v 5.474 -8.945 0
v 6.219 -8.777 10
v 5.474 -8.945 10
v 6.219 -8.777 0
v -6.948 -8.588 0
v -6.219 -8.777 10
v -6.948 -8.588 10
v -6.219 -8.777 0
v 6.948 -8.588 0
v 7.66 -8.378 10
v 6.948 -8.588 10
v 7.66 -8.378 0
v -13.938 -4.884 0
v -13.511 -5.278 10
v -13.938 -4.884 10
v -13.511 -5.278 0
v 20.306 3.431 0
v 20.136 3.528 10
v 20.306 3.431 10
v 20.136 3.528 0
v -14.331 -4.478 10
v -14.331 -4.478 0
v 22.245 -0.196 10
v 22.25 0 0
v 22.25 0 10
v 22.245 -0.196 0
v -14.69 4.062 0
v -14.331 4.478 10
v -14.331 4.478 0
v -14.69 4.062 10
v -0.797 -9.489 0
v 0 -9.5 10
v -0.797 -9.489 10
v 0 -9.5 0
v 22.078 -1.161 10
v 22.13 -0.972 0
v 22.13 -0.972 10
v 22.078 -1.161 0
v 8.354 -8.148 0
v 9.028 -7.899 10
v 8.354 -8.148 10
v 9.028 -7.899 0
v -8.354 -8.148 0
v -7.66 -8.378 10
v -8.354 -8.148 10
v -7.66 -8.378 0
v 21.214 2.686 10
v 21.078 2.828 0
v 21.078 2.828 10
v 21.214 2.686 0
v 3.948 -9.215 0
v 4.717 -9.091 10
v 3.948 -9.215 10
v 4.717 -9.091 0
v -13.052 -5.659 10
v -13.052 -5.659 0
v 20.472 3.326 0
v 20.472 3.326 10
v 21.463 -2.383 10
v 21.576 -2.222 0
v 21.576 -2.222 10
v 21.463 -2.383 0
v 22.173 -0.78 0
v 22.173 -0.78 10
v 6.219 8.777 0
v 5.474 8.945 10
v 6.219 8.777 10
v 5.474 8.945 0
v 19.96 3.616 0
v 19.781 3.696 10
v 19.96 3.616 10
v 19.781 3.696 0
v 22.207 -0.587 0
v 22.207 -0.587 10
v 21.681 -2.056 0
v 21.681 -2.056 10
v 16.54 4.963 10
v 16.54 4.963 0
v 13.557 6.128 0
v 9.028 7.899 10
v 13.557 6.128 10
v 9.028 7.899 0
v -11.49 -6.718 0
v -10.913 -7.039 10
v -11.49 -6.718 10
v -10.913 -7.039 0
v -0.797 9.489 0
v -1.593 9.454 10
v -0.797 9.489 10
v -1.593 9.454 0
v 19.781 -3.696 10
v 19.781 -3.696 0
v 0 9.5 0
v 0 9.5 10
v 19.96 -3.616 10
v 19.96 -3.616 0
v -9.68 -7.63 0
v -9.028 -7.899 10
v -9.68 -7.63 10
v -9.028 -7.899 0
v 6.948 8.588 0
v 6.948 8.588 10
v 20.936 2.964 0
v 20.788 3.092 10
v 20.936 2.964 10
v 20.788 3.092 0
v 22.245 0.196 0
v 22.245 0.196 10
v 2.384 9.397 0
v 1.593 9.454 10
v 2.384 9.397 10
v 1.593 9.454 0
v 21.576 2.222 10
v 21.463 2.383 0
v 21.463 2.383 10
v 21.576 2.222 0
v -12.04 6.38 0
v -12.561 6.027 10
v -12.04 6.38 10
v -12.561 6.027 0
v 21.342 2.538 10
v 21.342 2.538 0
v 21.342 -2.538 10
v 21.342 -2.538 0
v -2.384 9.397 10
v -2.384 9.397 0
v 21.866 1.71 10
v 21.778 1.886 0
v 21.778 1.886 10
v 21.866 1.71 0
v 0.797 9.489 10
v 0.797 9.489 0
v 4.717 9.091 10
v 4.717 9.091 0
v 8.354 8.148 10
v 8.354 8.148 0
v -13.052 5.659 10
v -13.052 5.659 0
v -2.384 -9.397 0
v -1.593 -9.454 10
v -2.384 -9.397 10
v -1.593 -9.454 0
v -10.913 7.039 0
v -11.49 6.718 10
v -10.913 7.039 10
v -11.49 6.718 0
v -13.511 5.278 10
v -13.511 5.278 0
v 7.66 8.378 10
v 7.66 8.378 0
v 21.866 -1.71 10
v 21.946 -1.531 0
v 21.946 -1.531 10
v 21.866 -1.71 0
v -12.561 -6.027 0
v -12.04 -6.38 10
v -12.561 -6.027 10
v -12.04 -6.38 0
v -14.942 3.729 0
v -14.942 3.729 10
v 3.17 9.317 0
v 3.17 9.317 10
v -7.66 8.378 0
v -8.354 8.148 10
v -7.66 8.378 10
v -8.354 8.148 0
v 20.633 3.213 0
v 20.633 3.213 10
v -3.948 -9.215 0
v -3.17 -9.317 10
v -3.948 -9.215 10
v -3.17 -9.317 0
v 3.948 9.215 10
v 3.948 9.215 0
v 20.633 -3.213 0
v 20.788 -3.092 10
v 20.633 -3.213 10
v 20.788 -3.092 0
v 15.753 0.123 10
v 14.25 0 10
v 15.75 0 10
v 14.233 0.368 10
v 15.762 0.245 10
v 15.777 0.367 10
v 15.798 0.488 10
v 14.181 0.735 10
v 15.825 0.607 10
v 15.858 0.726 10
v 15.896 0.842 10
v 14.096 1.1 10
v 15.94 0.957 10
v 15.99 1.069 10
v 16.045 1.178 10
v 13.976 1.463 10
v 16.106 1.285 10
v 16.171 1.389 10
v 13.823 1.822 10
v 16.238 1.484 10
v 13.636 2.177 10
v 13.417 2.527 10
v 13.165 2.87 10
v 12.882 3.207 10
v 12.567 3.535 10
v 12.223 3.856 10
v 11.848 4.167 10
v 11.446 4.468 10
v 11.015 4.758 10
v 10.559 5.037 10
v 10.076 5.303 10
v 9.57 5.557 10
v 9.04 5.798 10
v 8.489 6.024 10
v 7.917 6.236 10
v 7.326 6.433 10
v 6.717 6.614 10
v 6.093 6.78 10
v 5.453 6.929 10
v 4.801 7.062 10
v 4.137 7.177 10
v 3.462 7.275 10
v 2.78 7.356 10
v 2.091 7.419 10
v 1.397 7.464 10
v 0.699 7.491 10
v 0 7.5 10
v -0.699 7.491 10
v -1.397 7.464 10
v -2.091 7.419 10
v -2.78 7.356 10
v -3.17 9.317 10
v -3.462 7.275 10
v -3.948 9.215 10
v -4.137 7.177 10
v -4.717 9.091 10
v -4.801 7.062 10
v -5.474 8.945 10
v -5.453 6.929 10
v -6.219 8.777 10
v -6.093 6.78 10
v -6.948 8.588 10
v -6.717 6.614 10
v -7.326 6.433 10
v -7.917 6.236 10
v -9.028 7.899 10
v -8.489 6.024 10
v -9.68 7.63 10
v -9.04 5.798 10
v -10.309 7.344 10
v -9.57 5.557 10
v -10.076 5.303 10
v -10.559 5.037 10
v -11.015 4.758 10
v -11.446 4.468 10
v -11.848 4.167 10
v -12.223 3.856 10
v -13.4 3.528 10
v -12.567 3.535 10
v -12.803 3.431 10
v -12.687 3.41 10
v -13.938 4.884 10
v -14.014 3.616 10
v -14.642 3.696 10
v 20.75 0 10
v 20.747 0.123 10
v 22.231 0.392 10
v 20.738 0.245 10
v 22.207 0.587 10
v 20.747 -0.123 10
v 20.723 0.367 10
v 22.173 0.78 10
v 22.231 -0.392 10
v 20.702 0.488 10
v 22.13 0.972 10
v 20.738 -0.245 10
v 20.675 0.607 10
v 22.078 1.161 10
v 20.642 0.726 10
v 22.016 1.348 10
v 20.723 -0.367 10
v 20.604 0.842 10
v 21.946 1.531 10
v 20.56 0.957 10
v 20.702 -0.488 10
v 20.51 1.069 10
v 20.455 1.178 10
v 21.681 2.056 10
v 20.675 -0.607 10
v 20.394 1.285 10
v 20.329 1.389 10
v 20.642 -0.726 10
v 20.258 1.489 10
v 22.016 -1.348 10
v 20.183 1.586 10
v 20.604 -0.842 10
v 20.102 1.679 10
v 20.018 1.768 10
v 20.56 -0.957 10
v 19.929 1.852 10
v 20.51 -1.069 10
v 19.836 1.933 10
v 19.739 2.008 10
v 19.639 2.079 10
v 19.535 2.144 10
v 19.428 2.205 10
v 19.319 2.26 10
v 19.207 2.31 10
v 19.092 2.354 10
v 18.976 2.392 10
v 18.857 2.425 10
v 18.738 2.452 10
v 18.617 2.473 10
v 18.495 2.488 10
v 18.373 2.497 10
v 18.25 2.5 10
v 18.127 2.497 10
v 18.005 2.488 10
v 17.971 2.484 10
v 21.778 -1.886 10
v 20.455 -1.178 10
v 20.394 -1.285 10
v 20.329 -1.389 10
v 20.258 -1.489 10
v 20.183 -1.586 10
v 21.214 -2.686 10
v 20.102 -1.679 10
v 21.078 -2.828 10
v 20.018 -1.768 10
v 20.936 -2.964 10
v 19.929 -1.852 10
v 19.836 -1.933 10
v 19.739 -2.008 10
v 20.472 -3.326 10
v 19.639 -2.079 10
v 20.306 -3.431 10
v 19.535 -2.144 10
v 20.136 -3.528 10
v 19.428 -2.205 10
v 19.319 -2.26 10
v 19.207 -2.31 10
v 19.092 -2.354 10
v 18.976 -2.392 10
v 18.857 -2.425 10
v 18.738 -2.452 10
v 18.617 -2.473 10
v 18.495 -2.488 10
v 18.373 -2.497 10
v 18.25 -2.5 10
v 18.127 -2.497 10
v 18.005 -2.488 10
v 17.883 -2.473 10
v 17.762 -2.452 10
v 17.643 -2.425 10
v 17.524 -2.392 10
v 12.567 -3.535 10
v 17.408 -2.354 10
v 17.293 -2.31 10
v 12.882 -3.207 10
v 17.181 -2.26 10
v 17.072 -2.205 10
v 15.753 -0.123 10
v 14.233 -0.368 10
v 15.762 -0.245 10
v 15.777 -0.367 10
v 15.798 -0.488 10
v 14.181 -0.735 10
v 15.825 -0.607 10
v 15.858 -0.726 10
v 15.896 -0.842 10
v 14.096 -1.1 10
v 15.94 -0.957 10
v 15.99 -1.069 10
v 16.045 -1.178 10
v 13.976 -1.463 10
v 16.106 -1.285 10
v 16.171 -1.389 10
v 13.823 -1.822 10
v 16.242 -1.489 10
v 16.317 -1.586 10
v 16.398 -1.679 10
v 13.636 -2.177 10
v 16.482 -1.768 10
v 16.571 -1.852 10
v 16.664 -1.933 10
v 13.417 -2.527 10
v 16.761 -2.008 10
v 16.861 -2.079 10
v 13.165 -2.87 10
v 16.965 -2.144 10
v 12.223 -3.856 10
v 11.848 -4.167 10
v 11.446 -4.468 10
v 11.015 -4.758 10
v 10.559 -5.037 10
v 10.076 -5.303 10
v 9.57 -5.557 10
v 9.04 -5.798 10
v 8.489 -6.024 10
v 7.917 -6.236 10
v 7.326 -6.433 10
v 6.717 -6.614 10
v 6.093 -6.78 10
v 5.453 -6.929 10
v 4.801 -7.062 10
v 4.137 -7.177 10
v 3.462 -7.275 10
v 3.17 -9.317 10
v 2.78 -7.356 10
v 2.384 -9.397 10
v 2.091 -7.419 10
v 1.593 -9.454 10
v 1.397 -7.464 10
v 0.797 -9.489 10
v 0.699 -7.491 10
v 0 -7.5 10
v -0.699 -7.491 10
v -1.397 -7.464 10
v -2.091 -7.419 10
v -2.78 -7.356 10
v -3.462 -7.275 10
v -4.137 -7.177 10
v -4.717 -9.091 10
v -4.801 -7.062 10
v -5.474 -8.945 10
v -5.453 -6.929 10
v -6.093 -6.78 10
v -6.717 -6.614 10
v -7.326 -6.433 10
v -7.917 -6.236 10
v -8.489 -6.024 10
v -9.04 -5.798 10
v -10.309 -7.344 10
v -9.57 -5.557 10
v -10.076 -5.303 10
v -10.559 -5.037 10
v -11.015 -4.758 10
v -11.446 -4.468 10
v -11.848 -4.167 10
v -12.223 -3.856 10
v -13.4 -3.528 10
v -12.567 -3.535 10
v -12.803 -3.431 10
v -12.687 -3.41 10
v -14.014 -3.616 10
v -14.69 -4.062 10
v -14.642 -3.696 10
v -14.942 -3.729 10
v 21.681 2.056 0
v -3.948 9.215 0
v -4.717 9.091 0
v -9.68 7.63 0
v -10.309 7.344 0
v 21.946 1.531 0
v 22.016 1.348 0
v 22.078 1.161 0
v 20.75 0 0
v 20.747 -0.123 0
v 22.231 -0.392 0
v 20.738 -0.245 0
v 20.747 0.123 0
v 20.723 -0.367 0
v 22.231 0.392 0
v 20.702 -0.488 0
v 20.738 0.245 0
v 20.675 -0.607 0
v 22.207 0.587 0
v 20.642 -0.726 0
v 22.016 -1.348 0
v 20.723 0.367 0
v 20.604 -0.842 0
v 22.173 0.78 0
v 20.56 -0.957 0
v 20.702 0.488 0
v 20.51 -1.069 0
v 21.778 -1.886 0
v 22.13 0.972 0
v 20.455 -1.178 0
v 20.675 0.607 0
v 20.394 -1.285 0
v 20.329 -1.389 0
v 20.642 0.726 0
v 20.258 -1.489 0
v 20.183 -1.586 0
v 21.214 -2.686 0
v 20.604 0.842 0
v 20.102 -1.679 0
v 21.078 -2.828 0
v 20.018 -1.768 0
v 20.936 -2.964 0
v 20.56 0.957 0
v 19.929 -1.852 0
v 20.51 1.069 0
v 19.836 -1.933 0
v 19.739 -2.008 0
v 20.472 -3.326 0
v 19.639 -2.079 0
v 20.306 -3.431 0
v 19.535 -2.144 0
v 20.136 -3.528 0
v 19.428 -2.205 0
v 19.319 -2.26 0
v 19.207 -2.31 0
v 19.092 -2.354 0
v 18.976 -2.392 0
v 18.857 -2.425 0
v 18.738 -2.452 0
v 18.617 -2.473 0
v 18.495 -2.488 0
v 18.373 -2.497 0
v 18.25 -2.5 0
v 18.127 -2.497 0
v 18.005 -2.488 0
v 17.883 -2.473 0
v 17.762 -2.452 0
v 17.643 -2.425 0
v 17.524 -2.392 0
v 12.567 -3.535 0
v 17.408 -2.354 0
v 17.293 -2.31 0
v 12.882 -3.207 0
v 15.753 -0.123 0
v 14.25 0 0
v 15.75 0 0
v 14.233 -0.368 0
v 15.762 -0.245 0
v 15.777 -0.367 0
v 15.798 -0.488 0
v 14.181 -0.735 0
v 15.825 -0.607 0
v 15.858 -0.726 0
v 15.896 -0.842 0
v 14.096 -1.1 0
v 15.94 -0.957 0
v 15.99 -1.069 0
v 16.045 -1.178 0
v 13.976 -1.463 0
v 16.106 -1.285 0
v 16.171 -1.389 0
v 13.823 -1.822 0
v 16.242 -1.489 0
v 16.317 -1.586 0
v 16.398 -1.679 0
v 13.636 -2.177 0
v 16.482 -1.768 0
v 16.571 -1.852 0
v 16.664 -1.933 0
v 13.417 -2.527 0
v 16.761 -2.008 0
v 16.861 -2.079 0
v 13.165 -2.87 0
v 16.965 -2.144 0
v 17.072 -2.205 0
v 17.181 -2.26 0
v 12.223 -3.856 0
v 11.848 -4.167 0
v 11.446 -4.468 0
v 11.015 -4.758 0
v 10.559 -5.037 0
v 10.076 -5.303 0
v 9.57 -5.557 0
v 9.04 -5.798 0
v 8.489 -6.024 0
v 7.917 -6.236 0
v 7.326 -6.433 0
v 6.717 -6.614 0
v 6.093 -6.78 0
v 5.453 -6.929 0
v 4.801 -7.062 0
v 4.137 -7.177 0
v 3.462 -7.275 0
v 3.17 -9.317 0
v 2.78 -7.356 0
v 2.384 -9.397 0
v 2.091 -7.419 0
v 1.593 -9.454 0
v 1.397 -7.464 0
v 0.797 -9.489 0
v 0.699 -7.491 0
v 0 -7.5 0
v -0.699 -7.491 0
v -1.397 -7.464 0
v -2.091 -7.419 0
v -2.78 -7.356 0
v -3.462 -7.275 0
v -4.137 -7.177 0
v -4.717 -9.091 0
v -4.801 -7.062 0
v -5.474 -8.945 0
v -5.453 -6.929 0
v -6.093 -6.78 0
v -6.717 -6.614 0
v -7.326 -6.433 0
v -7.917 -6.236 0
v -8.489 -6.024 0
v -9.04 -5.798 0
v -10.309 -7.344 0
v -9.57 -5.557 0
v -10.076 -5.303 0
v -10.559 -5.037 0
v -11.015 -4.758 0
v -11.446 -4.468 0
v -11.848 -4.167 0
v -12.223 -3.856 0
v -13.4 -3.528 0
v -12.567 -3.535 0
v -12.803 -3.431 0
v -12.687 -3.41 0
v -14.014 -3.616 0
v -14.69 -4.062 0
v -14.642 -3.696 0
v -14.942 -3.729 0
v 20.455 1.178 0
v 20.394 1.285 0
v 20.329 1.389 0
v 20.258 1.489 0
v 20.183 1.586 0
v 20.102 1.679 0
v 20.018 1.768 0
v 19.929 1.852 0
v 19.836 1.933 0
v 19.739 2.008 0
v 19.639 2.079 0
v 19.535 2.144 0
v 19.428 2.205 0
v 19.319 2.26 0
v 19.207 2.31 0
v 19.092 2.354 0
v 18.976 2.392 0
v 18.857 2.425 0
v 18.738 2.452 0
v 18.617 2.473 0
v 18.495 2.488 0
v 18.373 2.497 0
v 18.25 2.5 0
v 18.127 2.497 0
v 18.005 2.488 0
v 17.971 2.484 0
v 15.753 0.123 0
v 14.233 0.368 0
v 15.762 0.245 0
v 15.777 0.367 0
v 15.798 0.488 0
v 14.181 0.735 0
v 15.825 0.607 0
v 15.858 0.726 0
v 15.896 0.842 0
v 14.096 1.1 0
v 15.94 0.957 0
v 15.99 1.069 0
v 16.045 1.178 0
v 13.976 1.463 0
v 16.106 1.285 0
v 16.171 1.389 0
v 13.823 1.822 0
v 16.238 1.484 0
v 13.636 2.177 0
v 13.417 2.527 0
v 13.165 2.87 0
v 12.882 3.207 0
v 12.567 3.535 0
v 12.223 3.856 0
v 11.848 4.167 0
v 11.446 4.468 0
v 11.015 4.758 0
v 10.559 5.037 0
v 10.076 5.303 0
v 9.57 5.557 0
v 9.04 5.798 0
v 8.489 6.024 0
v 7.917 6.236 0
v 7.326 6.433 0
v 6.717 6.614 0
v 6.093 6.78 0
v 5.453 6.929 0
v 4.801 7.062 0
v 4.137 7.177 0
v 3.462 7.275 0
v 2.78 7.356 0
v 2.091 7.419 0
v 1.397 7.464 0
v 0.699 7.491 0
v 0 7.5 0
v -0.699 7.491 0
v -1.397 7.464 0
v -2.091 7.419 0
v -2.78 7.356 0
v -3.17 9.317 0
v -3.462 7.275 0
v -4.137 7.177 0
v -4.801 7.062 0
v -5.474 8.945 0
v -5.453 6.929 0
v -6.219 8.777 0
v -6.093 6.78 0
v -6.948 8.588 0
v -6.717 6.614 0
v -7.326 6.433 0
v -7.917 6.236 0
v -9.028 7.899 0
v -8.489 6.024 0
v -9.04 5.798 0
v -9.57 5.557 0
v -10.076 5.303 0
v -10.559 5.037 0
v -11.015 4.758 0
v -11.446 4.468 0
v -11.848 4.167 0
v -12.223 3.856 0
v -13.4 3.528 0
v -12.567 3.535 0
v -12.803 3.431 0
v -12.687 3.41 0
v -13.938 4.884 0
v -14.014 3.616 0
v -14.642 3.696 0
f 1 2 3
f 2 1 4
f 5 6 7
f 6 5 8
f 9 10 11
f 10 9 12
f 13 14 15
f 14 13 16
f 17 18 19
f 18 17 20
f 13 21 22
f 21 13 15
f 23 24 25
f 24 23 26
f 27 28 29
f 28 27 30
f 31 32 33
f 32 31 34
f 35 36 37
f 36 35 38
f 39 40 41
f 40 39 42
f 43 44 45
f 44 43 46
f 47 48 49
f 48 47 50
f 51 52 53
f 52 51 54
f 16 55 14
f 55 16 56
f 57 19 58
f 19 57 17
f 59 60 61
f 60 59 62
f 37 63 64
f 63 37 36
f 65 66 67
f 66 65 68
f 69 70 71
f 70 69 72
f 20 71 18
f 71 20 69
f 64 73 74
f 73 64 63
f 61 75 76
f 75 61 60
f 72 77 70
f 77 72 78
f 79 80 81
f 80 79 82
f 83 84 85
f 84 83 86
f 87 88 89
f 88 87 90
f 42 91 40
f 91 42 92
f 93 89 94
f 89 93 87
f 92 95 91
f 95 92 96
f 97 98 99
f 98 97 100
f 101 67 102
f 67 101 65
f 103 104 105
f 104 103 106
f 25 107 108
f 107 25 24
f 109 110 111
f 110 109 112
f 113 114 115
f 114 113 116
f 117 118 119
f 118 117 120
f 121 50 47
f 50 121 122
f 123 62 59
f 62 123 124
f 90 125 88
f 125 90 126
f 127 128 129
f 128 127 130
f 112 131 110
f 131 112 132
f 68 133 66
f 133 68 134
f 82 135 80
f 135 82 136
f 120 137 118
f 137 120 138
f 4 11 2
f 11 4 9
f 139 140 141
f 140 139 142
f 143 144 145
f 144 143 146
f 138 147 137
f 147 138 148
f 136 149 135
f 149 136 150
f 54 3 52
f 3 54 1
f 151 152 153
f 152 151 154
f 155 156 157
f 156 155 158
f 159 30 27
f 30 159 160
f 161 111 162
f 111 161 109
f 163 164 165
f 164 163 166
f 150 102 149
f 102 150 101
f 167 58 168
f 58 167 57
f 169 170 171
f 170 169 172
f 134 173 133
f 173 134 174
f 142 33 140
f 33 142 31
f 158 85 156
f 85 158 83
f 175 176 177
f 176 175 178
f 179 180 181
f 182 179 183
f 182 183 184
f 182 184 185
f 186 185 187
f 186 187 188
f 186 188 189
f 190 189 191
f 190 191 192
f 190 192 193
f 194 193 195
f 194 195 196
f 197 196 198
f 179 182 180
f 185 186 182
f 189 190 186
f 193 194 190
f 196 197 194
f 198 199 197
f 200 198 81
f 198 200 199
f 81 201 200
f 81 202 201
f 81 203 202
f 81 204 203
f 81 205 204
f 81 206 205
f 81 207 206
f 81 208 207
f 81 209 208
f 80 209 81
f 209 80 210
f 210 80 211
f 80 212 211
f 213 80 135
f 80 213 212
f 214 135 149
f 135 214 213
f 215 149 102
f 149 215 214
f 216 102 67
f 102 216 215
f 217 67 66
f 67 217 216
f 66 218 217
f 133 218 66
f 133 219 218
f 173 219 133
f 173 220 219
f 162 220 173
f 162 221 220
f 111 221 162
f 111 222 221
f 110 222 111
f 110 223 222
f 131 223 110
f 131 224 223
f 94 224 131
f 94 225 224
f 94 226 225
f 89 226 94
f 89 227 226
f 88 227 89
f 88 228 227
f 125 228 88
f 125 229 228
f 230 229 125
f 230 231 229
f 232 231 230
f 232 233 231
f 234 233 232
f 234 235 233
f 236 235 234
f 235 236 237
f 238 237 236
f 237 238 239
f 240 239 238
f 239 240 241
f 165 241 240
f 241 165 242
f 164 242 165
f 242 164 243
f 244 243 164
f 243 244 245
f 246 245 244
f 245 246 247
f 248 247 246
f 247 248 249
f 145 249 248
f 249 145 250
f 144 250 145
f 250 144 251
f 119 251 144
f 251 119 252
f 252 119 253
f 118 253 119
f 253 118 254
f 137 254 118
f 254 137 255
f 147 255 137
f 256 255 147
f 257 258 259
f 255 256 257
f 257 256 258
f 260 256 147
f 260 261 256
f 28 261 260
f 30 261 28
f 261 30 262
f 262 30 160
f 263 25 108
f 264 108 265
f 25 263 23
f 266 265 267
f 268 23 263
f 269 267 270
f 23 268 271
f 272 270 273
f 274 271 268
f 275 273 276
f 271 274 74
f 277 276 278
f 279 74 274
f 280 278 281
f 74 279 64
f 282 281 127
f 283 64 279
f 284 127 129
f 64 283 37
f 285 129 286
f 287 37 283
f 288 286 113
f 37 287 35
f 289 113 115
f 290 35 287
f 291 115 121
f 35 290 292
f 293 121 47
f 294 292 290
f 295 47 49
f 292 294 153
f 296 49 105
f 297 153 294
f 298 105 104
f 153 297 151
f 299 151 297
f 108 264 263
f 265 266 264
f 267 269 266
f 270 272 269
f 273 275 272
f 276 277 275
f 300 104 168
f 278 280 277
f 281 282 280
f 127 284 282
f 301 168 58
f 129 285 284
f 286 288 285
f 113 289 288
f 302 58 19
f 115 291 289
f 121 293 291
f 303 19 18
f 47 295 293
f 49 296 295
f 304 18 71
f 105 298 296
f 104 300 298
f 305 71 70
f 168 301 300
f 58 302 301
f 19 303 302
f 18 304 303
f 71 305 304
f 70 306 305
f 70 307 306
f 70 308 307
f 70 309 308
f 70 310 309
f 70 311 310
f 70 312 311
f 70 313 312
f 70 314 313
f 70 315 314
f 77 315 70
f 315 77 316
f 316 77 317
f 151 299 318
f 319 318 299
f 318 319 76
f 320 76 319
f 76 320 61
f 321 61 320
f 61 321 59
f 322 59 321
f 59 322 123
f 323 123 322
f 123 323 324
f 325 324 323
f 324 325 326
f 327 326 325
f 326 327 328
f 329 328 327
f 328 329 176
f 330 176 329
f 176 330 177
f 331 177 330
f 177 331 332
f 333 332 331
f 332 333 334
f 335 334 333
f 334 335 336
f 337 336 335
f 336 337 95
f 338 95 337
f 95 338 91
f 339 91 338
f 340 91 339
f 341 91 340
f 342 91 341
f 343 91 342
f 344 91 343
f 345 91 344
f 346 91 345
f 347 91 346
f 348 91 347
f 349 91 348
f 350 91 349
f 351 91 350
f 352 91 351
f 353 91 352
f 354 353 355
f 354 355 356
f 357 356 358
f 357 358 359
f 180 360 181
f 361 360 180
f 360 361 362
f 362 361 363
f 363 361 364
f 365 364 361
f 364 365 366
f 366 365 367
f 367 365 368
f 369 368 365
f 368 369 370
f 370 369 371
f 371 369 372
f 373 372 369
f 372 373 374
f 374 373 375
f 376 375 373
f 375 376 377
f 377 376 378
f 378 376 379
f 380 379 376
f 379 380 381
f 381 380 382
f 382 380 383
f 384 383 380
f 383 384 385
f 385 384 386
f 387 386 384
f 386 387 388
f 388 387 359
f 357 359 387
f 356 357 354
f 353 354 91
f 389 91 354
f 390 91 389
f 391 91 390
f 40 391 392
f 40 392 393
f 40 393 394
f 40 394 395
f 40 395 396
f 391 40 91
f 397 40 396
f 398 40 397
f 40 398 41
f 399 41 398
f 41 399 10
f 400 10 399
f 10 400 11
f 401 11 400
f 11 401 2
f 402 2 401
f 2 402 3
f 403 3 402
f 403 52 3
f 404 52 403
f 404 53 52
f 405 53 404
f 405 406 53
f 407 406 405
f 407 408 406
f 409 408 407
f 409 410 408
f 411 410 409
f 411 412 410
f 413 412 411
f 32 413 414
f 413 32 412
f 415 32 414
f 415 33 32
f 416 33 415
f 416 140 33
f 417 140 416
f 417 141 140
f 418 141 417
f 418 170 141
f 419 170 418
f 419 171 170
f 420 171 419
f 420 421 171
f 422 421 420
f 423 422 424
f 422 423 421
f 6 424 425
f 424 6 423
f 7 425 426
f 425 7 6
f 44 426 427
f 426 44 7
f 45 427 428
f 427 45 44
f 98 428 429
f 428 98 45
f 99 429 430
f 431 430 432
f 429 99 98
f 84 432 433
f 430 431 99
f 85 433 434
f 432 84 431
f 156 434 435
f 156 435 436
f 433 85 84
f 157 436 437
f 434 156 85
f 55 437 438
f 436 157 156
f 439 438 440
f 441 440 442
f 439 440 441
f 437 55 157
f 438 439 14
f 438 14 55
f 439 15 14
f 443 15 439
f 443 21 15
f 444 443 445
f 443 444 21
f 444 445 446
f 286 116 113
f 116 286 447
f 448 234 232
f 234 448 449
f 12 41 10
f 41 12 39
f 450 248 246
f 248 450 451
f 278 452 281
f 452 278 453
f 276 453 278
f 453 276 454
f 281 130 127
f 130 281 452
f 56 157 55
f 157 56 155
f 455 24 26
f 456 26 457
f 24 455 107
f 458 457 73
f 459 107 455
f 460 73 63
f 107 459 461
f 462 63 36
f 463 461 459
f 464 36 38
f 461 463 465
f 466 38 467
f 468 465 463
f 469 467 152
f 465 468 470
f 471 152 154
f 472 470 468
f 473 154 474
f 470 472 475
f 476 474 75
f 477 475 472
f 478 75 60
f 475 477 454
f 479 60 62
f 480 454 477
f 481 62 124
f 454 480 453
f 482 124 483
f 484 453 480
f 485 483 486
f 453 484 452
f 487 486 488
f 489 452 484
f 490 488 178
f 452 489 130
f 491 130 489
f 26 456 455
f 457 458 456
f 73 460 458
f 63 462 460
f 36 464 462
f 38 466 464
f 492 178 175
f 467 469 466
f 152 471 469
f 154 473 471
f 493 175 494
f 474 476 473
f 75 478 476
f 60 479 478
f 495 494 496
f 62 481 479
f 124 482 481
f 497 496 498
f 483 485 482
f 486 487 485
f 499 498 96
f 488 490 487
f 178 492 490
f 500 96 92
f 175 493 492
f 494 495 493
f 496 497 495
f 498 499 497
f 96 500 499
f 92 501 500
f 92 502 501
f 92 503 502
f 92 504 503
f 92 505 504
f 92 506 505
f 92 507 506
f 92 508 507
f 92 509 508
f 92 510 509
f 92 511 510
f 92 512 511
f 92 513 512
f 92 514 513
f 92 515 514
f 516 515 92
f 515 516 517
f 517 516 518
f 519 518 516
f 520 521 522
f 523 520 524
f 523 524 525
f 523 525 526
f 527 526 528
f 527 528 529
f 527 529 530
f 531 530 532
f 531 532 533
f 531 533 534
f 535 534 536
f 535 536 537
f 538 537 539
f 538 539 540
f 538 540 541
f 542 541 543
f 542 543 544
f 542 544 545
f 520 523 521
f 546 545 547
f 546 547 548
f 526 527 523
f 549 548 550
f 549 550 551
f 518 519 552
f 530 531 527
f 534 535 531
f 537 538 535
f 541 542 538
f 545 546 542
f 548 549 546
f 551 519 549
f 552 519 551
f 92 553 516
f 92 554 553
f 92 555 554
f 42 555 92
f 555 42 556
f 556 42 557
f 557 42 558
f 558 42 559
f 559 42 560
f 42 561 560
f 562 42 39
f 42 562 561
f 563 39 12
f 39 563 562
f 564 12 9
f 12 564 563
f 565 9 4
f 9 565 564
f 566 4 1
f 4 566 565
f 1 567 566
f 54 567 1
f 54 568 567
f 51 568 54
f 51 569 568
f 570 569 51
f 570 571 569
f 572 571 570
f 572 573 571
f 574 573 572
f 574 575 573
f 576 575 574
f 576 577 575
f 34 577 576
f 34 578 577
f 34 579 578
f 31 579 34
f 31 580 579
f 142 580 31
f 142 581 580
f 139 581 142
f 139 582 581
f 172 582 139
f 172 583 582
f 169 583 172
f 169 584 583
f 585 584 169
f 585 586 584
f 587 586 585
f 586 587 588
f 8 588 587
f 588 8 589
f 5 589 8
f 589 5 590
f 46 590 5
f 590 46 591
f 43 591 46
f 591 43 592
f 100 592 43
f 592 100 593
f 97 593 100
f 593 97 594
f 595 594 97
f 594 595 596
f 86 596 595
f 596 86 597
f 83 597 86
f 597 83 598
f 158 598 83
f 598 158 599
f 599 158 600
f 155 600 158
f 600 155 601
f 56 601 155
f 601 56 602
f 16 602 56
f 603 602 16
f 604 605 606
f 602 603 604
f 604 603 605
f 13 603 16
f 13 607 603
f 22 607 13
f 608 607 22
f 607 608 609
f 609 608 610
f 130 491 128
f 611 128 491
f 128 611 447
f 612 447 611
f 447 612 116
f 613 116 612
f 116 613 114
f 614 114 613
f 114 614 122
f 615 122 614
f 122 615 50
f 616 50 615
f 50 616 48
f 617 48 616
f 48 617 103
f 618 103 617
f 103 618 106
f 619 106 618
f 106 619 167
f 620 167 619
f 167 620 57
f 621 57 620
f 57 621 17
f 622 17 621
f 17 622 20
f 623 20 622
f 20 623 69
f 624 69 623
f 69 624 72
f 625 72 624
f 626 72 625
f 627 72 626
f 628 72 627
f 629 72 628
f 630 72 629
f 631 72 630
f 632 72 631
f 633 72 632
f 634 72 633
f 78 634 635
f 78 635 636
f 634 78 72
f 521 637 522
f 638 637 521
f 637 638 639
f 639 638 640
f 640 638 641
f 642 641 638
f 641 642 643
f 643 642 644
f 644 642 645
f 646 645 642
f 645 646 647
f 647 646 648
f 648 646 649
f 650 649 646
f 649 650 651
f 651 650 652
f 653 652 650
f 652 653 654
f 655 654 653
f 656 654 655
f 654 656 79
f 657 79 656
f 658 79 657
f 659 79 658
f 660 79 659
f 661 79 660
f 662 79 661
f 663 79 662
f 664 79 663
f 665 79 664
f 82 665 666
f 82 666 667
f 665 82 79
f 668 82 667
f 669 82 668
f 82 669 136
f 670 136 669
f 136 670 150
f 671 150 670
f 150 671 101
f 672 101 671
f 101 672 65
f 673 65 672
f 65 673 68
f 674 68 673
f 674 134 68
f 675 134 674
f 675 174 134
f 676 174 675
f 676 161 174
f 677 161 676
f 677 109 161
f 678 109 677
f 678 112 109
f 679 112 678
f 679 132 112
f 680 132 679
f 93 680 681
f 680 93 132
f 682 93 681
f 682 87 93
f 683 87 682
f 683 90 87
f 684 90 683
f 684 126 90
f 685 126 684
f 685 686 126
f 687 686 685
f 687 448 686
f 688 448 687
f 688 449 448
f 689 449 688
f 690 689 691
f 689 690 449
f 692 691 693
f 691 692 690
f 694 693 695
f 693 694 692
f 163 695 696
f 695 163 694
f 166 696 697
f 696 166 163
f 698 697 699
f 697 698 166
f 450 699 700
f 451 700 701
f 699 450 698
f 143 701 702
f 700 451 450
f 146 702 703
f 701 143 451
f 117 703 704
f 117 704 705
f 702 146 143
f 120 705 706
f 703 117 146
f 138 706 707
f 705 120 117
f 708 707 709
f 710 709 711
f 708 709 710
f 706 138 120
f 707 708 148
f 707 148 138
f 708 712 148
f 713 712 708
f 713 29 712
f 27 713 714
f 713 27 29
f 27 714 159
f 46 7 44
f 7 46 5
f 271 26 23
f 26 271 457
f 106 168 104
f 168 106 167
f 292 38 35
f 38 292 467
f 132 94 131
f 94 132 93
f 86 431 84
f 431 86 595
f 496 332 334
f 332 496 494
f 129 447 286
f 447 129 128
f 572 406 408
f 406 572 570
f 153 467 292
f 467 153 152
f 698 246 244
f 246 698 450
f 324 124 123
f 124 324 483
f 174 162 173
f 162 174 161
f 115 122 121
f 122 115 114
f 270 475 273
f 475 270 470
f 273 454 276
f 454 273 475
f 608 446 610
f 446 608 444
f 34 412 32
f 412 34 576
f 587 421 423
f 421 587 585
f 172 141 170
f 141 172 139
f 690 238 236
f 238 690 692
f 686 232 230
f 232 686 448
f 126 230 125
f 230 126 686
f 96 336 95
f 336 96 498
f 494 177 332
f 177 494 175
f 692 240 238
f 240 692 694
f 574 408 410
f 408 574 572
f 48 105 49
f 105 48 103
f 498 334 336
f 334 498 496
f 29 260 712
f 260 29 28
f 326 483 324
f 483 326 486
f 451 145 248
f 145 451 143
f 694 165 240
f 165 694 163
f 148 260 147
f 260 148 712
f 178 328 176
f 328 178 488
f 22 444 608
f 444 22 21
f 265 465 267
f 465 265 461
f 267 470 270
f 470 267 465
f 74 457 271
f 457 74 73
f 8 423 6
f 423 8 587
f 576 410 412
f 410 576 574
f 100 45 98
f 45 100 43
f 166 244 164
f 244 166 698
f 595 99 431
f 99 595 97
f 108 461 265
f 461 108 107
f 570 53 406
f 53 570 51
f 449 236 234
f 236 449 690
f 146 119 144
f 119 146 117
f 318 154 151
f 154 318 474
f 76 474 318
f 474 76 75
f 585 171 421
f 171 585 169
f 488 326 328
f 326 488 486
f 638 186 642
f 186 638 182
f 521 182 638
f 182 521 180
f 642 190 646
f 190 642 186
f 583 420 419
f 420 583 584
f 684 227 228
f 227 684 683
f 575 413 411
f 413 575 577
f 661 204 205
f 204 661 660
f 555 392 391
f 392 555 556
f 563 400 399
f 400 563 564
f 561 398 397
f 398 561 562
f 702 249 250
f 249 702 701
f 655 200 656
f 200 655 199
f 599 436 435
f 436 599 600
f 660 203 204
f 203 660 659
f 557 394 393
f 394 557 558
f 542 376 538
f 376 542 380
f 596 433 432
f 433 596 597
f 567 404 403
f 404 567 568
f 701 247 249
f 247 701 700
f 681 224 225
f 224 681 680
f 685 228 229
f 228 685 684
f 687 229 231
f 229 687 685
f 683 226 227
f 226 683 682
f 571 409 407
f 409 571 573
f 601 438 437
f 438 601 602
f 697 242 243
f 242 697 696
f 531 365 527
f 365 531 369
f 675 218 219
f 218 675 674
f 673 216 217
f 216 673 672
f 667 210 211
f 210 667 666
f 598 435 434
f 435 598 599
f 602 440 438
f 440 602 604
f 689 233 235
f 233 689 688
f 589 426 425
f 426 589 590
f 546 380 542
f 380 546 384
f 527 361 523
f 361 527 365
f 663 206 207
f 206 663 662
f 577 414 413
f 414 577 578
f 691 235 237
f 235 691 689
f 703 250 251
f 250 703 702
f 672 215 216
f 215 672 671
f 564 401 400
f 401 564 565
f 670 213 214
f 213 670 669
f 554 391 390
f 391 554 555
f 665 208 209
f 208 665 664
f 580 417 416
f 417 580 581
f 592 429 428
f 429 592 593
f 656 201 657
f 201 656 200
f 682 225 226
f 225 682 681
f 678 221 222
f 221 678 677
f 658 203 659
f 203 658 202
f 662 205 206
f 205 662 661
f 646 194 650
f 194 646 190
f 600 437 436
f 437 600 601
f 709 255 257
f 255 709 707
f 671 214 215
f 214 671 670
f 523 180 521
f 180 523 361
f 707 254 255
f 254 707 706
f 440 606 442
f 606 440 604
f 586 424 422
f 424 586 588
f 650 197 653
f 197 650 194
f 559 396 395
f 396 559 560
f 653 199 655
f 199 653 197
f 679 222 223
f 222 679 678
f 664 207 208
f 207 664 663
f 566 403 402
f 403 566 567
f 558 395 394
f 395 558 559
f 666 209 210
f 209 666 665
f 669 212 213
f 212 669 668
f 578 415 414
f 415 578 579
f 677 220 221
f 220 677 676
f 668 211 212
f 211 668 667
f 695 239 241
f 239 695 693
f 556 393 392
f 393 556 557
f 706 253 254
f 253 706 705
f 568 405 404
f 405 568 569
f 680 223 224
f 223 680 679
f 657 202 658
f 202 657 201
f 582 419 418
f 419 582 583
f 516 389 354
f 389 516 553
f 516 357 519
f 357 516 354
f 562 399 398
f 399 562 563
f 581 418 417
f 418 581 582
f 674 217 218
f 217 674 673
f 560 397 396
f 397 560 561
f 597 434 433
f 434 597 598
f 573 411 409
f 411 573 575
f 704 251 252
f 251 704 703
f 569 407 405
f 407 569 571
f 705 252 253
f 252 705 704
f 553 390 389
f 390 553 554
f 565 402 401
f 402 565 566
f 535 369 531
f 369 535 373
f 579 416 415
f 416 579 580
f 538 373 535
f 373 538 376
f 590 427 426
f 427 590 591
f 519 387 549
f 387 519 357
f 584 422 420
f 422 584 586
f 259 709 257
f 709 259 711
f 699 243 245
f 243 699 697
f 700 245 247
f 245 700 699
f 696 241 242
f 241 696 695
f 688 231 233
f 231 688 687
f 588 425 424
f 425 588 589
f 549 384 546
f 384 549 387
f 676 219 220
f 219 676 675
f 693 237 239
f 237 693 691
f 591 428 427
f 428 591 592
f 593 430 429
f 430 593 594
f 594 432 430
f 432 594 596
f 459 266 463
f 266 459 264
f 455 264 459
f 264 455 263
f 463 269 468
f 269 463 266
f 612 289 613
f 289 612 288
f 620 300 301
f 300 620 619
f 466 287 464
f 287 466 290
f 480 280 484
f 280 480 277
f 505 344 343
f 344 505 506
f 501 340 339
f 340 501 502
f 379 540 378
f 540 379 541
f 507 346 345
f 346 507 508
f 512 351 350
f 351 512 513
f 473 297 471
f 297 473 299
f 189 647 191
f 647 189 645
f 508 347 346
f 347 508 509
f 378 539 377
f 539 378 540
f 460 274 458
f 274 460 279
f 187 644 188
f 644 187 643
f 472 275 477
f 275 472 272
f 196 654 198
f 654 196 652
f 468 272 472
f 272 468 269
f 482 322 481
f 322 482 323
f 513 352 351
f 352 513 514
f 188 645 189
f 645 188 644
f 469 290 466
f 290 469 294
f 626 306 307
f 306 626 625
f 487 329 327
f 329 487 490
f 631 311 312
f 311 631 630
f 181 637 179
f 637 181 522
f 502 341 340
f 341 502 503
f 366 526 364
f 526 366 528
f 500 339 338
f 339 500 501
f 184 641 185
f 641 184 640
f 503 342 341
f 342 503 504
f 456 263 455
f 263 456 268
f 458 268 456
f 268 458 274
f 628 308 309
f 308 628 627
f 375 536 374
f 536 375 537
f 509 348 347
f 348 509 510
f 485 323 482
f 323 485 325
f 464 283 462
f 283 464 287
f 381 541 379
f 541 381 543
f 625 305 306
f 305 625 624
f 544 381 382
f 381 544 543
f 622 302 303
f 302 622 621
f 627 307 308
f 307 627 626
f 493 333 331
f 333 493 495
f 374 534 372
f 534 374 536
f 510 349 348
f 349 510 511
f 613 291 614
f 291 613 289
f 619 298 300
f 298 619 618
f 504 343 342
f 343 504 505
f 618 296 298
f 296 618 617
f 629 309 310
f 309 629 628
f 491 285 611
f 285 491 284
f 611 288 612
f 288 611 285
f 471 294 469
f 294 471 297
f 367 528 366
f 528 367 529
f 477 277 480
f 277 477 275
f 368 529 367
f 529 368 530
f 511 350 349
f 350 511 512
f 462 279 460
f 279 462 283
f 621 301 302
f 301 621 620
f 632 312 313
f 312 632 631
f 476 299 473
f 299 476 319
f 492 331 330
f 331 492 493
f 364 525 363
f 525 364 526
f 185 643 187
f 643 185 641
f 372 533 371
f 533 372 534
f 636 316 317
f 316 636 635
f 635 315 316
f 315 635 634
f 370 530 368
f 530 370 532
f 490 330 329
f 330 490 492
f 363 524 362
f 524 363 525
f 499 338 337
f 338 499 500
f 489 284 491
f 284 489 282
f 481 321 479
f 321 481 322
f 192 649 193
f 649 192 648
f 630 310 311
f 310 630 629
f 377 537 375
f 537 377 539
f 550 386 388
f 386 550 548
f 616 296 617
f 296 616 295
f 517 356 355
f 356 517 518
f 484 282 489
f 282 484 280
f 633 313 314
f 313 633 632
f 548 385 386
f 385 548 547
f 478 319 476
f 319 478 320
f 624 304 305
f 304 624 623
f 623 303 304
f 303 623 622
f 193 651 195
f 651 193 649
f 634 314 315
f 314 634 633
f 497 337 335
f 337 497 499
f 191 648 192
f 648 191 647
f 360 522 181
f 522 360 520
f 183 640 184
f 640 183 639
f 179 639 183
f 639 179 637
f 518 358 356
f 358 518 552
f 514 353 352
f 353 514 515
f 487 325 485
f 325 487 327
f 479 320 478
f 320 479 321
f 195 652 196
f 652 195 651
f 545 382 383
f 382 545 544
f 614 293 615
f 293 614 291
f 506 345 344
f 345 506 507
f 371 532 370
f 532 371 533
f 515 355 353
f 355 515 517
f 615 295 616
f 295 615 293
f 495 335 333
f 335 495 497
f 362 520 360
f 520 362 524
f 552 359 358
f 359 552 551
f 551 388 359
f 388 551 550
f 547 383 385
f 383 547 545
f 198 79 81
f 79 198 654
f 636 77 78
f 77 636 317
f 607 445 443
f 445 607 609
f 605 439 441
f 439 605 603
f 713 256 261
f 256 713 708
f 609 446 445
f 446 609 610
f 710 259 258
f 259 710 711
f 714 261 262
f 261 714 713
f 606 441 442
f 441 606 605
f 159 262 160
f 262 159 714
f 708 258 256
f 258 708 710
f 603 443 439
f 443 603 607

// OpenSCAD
// 15,28.5
$fn=128;
difference(){
hull(){
    scale([(28.5+4)/28.5,(15+4)/28.5,10/30])
    cylinder(d=28.5,h=30);
    translate([28.5/2+(5+3)/2,0,0])
    cylinder(d=5+3,h=10);
}
    translate([0,0,-5])
    scale([1,15/28.5,1])
    cylinder(d=28.5,h=30);




translate([28.5/2+(5+3)/2,0,0])
translate([0,0,-5])
cylinder(d=5,h=30);

translate([28.5/2+(5+3)/2,0,0])
rotate([0,0,30])
translate([0,20/2,0])
cube([2,20,30],center=true);

translate([-20,0,0])
scale([1,8/28,1])
cylinder(d=28,h=30,center=true);
}
